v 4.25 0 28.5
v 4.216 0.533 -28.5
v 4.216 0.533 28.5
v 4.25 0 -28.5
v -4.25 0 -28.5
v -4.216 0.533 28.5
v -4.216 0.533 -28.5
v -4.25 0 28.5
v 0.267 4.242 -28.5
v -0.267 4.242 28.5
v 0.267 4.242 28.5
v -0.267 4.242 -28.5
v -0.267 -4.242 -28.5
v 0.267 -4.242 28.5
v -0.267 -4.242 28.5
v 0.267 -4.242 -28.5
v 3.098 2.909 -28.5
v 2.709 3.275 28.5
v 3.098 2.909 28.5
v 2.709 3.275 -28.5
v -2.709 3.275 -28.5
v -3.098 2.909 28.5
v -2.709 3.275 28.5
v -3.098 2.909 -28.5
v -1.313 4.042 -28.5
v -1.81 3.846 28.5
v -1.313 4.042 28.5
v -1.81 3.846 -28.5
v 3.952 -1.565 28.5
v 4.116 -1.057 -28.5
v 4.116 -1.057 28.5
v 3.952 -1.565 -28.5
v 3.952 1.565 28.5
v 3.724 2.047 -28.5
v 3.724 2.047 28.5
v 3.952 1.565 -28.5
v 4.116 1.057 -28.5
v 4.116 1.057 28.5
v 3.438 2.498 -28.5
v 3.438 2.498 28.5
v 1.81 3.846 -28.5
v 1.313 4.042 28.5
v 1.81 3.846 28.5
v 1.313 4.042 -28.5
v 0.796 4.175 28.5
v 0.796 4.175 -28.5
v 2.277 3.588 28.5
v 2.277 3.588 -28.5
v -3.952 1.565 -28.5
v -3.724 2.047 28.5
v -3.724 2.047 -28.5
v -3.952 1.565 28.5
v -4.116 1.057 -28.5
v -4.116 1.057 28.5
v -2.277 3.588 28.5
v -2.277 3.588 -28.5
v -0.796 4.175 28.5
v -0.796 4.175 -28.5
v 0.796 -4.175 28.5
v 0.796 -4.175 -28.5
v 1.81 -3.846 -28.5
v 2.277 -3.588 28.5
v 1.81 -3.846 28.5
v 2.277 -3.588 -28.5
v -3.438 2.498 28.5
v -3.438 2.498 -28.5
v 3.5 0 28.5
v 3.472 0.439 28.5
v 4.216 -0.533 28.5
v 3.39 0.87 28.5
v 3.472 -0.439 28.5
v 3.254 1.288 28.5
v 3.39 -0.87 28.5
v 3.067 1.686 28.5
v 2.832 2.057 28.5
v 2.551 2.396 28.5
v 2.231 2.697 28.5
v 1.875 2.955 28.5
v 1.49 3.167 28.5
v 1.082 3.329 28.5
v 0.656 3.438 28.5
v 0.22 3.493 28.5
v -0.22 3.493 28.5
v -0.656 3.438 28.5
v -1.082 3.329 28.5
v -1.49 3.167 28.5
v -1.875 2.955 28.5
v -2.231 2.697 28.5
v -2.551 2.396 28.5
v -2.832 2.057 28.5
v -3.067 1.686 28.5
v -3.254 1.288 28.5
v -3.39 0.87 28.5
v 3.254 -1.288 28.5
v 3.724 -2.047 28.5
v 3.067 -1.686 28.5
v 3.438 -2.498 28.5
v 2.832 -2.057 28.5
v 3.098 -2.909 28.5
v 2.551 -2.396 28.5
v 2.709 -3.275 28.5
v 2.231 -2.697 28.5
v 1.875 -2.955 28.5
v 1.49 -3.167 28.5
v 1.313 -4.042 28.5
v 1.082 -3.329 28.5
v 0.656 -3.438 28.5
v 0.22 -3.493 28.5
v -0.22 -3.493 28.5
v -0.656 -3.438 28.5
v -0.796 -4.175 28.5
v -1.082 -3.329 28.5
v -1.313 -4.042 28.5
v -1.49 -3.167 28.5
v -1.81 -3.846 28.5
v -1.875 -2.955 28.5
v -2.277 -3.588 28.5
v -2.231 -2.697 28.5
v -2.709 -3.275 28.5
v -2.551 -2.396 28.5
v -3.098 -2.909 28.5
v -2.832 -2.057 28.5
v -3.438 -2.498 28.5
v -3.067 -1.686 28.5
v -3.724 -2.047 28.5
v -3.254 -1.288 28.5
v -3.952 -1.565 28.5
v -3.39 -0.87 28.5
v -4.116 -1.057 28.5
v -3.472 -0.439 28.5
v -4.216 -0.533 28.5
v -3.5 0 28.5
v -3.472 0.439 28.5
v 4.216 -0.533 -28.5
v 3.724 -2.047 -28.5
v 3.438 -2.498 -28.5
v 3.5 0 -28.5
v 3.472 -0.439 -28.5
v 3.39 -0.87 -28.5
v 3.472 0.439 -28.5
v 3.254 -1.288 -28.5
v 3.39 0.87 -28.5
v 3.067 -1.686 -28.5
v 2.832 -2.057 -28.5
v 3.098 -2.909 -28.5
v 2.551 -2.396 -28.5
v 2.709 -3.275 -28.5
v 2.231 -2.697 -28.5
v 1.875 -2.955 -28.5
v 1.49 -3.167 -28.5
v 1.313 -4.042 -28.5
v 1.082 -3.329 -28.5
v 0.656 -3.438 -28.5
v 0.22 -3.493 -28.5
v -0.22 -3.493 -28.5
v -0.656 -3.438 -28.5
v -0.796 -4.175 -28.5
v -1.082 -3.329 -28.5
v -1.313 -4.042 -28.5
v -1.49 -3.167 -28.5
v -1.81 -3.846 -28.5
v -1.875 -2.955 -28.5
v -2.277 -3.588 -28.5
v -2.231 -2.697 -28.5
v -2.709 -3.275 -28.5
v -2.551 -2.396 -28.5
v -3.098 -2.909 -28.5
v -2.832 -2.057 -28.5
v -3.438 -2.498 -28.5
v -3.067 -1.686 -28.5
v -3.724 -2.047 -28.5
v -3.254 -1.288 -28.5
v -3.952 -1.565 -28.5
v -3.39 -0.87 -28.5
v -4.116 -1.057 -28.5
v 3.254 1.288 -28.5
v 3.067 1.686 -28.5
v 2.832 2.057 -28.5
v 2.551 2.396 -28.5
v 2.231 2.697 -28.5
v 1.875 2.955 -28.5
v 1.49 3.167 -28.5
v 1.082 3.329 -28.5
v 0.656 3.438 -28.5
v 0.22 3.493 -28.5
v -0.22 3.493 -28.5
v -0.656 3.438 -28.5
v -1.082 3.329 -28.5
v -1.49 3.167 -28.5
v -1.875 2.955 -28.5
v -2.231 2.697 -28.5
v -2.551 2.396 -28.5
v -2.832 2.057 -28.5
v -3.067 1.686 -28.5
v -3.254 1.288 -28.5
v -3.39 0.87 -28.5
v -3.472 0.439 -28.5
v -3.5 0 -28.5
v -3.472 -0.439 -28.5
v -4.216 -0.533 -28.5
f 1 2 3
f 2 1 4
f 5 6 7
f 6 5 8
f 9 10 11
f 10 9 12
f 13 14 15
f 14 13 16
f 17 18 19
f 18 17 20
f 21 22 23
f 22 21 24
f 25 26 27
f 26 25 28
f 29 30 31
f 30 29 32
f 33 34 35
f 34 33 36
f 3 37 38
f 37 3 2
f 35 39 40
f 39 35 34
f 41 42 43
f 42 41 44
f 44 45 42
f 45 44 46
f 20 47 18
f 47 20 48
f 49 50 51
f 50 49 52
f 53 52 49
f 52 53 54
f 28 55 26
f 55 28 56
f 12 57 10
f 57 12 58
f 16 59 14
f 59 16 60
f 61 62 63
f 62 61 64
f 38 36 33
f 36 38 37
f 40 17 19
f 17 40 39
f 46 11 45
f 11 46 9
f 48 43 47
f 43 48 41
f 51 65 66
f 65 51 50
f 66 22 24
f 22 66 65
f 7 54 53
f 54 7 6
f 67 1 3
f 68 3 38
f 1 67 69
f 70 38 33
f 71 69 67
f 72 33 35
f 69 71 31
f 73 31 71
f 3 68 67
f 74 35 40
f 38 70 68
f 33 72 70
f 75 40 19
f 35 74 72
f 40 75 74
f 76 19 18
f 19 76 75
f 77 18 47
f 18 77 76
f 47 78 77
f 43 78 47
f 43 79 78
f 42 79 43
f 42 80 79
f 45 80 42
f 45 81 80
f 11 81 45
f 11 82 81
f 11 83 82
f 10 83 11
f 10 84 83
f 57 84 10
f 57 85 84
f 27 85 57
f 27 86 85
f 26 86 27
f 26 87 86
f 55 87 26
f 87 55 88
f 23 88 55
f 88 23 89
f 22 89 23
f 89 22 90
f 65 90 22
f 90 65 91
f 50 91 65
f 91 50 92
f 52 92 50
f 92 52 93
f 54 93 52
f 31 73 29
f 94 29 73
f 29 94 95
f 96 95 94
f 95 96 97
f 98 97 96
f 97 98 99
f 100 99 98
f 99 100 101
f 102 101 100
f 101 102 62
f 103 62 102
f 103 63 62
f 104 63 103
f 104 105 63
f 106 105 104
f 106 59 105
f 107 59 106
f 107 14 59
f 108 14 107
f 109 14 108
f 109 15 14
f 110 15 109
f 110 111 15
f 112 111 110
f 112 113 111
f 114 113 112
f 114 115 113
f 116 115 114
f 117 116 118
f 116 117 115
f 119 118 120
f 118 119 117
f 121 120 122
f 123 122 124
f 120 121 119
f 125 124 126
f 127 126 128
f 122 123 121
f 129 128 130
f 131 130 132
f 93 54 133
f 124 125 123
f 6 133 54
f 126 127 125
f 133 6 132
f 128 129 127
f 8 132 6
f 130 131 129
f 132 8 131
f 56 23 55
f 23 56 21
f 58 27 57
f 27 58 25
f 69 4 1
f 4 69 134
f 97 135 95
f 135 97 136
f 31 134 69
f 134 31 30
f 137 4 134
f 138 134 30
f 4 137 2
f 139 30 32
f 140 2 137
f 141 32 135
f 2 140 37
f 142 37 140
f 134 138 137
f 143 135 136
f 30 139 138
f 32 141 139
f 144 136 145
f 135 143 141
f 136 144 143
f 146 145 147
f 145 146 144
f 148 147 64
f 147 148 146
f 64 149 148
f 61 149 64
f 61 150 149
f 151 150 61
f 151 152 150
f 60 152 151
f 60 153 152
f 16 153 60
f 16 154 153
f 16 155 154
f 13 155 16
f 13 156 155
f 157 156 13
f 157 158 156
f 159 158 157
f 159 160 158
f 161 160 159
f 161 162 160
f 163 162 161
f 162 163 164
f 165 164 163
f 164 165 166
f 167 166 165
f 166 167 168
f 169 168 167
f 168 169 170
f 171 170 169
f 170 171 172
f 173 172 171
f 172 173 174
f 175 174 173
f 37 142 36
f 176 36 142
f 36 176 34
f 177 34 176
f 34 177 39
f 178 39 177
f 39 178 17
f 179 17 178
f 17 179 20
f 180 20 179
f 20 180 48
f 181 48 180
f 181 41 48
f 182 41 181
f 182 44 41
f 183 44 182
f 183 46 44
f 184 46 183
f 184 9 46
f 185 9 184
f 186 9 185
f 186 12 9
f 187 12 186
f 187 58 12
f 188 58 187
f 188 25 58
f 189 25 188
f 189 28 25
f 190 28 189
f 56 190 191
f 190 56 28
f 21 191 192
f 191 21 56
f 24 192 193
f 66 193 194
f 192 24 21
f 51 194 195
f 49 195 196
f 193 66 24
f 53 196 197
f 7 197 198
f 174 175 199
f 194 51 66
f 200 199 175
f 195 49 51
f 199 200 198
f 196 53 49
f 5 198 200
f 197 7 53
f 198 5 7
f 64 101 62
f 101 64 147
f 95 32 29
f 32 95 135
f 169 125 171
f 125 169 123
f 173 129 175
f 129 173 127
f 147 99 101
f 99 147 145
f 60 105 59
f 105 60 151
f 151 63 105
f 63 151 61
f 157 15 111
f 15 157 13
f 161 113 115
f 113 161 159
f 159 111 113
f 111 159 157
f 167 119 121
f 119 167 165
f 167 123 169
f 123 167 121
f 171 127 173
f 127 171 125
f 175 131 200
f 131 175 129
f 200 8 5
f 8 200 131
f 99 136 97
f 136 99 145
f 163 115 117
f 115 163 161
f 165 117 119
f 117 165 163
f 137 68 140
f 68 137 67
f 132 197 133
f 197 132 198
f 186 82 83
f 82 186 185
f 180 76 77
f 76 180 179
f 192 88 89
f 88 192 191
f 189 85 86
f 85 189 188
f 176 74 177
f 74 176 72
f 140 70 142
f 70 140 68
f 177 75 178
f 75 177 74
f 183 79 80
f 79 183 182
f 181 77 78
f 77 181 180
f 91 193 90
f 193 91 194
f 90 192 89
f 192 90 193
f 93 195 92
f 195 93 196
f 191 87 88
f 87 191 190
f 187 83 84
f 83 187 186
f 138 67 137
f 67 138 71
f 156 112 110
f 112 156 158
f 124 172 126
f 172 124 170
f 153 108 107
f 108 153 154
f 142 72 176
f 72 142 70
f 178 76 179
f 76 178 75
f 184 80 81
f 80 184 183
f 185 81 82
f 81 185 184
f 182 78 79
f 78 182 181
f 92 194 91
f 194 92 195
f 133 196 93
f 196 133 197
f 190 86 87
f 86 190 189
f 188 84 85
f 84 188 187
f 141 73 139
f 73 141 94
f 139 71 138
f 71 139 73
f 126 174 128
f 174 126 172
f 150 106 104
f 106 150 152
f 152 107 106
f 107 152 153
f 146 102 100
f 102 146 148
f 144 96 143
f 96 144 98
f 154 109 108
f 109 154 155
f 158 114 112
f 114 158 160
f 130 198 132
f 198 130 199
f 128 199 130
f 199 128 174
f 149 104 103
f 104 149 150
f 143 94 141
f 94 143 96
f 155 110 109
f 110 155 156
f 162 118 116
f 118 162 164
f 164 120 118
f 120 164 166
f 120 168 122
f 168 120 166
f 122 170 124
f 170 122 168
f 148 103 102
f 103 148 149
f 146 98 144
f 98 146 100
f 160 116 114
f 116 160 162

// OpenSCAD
$fn = 50;


difference() {
	union() {
		translate(v = [0, 0, -28.5000000000]) {
			cylinder(h = 57, r = 4.2500000000);
		}
	}
	union() {
		translate(v = [0, 0, -100.0000000000]) {
			cylinder(h = 200, r = 3.5000000000);
		}
	}
}
